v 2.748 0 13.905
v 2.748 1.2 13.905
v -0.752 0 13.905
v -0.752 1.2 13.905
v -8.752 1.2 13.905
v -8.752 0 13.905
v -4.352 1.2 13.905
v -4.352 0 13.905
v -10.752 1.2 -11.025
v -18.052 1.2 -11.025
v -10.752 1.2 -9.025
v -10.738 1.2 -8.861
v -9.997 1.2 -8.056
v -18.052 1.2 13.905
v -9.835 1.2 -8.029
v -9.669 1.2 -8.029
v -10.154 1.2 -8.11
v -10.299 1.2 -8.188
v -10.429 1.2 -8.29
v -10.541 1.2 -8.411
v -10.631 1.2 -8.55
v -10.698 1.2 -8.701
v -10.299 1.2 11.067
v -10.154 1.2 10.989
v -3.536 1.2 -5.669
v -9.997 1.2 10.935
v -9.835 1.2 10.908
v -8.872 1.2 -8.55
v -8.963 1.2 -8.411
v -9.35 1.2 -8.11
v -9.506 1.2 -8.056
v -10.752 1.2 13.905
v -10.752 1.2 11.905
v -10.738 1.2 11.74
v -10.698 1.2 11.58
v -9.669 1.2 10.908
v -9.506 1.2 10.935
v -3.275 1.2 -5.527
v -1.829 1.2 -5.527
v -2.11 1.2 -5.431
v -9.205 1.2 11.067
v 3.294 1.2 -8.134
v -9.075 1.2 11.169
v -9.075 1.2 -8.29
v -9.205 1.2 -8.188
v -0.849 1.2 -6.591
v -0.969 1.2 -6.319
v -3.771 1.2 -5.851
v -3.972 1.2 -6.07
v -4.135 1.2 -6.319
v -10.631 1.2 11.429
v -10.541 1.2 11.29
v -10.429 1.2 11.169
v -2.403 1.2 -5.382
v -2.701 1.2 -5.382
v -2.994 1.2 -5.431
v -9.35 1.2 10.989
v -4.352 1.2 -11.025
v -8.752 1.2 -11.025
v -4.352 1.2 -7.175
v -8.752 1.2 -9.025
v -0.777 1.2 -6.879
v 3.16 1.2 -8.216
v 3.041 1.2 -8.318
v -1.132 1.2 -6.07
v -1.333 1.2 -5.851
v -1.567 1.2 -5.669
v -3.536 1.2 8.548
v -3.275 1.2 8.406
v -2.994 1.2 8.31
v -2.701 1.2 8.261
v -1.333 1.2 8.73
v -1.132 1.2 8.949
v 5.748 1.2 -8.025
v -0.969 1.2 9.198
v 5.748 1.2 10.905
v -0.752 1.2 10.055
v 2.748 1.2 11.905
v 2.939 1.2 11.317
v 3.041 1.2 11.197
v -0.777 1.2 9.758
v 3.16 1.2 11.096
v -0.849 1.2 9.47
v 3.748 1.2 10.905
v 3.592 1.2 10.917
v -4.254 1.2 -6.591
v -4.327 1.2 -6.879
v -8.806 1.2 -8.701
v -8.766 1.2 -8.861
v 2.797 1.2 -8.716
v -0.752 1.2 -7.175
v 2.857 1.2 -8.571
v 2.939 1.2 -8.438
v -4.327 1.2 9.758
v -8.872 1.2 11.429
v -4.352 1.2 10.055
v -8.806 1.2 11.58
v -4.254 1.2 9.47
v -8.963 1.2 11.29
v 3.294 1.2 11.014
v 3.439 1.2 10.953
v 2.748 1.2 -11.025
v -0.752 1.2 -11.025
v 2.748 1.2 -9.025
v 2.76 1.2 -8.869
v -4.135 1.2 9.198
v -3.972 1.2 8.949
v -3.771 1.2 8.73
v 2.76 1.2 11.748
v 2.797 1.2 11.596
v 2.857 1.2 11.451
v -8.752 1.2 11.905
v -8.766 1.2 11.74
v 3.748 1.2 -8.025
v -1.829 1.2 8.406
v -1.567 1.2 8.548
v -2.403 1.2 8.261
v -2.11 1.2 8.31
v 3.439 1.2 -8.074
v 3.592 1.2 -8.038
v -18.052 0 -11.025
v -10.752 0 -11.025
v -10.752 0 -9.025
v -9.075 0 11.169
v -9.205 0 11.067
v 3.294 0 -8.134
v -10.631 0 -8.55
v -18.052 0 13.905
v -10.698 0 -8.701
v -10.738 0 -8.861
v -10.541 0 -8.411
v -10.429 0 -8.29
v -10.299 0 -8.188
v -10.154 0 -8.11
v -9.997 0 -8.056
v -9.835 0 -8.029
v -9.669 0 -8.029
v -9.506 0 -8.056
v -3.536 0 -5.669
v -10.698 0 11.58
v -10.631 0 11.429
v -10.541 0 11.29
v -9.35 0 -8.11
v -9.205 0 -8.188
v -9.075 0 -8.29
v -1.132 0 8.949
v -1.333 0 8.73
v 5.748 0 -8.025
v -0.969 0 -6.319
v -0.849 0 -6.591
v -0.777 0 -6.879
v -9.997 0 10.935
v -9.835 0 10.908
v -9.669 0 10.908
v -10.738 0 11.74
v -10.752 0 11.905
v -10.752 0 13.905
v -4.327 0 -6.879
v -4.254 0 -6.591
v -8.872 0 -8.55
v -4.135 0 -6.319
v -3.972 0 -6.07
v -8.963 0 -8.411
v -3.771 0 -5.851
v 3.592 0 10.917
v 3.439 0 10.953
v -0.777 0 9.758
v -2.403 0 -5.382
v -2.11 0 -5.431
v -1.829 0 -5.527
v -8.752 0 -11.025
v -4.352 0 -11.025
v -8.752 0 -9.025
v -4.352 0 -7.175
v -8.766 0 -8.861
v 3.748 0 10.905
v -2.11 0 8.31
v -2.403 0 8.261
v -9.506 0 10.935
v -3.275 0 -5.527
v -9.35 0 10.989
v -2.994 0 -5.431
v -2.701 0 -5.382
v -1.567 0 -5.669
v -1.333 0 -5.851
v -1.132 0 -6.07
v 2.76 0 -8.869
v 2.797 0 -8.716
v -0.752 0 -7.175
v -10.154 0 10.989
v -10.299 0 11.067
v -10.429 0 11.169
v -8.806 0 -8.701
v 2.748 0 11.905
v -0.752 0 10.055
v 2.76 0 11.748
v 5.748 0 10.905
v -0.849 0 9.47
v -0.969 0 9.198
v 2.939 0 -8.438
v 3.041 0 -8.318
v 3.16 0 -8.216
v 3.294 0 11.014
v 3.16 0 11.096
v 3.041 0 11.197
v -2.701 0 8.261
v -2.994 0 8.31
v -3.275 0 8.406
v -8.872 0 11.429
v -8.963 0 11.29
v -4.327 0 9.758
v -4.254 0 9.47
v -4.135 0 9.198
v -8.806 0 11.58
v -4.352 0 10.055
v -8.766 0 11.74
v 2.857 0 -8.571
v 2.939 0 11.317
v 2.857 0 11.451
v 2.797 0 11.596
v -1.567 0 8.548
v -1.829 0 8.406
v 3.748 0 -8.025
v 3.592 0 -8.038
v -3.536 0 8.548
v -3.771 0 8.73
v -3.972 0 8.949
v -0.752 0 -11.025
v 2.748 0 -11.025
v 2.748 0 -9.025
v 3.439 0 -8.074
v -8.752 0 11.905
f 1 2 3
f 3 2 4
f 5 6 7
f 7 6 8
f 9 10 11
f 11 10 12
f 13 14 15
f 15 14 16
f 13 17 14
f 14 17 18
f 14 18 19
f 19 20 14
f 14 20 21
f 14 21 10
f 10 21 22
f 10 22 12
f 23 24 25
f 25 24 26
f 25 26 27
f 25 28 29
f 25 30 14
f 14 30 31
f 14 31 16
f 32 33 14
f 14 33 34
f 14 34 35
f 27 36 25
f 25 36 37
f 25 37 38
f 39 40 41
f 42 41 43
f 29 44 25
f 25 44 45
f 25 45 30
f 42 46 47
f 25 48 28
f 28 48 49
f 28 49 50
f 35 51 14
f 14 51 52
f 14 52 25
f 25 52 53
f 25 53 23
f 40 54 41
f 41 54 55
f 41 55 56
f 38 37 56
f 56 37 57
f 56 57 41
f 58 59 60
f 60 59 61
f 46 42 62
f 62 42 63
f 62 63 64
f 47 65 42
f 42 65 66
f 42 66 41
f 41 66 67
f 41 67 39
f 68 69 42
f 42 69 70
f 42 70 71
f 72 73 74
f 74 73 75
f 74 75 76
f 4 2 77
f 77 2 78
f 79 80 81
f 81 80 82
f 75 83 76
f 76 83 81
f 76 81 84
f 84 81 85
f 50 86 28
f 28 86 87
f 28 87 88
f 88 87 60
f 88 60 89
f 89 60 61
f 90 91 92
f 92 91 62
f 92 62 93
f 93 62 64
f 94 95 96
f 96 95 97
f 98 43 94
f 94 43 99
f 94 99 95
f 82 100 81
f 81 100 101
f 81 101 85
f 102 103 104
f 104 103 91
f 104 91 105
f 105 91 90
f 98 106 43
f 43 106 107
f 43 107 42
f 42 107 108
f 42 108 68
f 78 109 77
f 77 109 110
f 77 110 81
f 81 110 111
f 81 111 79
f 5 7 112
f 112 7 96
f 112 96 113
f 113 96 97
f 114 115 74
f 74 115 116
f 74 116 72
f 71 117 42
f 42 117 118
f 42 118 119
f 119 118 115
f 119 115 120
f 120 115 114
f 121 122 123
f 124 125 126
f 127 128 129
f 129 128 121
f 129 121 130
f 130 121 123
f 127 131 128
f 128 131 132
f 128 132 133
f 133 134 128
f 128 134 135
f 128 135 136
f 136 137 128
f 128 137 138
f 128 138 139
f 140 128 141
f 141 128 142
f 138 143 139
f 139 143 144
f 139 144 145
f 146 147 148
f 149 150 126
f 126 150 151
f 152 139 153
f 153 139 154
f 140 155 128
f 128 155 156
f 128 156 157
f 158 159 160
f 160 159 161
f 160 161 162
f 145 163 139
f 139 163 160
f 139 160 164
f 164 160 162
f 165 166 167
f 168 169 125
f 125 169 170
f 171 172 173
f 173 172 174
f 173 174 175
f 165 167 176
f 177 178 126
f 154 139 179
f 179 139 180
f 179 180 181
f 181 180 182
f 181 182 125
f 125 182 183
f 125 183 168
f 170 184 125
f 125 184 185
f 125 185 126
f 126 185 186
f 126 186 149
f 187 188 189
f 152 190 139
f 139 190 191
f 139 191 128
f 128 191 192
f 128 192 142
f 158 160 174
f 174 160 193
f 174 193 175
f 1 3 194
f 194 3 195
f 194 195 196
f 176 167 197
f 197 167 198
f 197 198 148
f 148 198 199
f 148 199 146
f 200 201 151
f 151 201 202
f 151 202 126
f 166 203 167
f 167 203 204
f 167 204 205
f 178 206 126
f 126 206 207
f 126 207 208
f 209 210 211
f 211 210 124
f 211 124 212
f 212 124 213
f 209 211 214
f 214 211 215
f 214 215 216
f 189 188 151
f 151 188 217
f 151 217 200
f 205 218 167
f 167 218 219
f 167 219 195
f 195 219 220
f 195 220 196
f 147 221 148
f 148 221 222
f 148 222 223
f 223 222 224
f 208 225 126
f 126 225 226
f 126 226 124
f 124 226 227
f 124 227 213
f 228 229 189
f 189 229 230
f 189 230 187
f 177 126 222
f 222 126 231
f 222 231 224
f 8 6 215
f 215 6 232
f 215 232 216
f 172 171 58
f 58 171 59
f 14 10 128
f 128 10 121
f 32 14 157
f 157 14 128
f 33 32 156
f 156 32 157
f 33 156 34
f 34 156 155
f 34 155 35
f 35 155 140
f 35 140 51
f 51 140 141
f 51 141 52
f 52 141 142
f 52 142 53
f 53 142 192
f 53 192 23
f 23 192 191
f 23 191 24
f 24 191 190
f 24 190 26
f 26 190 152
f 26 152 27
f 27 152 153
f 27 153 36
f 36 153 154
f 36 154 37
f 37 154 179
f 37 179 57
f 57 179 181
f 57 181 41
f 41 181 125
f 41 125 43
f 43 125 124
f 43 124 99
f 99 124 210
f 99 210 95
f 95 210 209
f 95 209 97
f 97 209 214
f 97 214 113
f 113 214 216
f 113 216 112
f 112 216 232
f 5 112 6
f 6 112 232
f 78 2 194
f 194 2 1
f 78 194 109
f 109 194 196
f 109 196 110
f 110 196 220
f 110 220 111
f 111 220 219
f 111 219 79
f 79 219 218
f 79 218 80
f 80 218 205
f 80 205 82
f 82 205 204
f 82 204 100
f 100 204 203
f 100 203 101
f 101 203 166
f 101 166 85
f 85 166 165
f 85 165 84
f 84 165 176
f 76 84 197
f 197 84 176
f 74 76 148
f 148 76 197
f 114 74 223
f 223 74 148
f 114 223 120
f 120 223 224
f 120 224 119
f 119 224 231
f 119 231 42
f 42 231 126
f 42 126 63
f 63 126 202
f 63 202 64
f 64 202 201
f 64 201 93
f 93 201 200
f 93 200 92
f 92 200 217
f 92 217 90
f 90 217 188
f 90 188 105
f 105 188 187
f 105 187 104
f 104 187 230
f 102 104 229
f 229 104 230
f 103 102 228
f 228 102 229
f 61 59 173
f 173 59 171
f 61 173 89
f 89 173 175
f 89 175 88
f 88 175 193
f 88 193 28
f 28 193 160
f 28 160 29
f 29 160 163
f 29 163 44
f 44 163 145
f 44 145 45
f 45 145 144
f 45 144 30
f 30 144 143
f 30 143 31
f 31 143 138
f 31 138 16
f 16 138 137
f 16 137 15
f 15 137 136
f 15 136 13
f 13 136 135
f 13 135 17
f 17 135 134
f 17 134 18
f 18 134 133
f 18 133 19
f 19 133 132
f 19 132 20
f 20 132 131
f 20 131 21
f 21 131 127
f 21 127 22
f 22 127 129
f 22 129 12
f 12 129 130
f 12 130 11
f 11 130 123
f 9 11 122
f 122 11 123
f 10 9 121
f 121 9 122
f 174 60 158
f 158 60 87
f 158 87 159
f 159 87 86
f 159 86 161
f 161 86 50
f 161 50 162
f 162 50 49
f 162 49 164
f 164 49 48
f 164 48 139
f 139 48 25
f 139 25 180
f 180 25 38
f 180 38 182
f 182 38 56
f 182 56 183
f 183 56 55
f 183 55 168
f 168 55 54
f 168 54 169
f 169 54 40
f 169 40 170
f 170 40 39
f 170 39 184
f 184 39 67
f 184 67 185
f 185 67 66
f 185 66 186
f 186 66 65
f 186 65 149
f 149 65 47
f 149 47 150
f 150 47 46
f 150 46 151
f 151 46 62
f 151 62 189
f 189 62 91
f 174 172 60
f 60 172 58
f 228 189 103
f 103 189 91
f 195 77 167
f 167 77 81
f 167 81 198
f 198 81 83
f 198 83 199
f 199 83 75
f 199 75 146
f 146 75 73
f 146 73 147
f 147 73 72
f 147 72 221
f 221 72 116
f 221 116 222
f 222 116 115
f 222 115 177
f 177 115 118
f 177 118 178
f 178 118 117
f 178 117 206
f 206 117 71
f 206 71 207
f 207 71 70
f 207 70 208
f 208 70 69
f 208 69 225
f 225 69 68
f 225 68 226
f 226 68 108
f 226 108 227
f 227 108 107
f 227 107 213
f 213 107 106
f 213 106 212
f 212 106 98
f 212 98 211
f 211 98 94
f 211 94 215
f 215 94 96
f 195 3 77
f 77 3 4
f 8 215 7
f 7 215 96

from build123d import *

# Parameters (mm, degrees)
BOSS_EXTRUDE1_DEPTH = 1.2
CUT_EXTRUDE2_DEPTH  = 2.2


with BuildPart() as part:
    # Sketch1 → Boss-Extrude1 (new body)
    with BuildSketch(Plane(origin=(0, 0, 0), x_dir=(1, 0, 0), z_dir=(0, 1, 0))):
        with BuildLine():
            Line((3.748031496, 8.025459318), (5.748031496, 8.025459318))
            Line((5.748031496, 8.025459318), (5.748031496, -10.904540682))
            Line((5.748031496, -10.904540682), (3.748031496, -10.904540682))
            ThreePointArc((3.748031496, -10.904540682), (3.040924715, -11.197433901), (2.748031496, -11.904540682))
            Line((2.748031496, -11.904540682), (2.748031496, -13.904540682))
            Line((2.748031496, -13.904540682), (-8.751968504, -13.904540682))
            Line((-8.751968504, -13.904540682), (-8.751968504, -11.904540682))
            ThreePointArc((-8.751968504, -11.904540682), (-9.751968504, -10.904540682), (-10.751968504, -11.904540682))
            Line((-10.751968504, -11.904540682), (-10.751968504, -13.904540682))
            Line((-10.751968504, -13.904540682), (-18.051968504, -13.904540682))
            Line((-18.051968504, -13.904540682), (-18.051968504, 11.025459318))
            Line((-18.051968504, 11.025459318), (-10.751968504, 11.025459318))
            Line((-10.751968504, 11.025459318), (-10.751968504, 9.025459318))
            ThreePointArc((-10.751968504, 9.025459318), (-9.751968504, 8.025459318), (-8.751968504, 9.025459318))
            Line((-8.751968504, 9.025459318), (-8.751968504, 11.025459318))
            Line((-8.751968504, 11.025459318), (2.748031496, 11.025459318))
            Line((2.748031496, 11.025459318), (2.748031496, 9.025459318))
            ThreePointArc((2.748031496, 9.025459318), (3.040924715, 8.318352536), (3.748031496, 8.025459318))
        make_face()
    extrude(amount=BOSS_EXTRUDE1_DEPTH)

    # Sketch2 → Cut-Extrude2 (cut, through all)
    with BuildSketch(Plane(origin=(0, 1.2, 0), x_dir=(1, 0, 0), z_dir=(0, 1, 0))):
        with BuildLine():
            Line((-4.351968504, 7.175459318), (-4.351968504, 11.025459318))
            Line((-4.351968504, 11.025459318), (-0.751968504, 11.025459318))
            Line((-0.751968504, 11.025459318), (-0.751968504, 7.175459318))
            ThreePointArc((-0.751968504, 7.175459318), (-2.551968504, 5.375459318), (-4.351968504, 7.175459318))
        make_face()
    cut_extrude2 = extrude(amount=-CUT_EXTRUDE2_DEPTH, mode=Mode.SUBTRACT)

    # Mirror2: Cut-Extrude2 across plane
    add(cut_extrude2.mirror(Plane.XY.offset(1.439540682)), mode=Mode.SUBTRACT)


solid = part.part
